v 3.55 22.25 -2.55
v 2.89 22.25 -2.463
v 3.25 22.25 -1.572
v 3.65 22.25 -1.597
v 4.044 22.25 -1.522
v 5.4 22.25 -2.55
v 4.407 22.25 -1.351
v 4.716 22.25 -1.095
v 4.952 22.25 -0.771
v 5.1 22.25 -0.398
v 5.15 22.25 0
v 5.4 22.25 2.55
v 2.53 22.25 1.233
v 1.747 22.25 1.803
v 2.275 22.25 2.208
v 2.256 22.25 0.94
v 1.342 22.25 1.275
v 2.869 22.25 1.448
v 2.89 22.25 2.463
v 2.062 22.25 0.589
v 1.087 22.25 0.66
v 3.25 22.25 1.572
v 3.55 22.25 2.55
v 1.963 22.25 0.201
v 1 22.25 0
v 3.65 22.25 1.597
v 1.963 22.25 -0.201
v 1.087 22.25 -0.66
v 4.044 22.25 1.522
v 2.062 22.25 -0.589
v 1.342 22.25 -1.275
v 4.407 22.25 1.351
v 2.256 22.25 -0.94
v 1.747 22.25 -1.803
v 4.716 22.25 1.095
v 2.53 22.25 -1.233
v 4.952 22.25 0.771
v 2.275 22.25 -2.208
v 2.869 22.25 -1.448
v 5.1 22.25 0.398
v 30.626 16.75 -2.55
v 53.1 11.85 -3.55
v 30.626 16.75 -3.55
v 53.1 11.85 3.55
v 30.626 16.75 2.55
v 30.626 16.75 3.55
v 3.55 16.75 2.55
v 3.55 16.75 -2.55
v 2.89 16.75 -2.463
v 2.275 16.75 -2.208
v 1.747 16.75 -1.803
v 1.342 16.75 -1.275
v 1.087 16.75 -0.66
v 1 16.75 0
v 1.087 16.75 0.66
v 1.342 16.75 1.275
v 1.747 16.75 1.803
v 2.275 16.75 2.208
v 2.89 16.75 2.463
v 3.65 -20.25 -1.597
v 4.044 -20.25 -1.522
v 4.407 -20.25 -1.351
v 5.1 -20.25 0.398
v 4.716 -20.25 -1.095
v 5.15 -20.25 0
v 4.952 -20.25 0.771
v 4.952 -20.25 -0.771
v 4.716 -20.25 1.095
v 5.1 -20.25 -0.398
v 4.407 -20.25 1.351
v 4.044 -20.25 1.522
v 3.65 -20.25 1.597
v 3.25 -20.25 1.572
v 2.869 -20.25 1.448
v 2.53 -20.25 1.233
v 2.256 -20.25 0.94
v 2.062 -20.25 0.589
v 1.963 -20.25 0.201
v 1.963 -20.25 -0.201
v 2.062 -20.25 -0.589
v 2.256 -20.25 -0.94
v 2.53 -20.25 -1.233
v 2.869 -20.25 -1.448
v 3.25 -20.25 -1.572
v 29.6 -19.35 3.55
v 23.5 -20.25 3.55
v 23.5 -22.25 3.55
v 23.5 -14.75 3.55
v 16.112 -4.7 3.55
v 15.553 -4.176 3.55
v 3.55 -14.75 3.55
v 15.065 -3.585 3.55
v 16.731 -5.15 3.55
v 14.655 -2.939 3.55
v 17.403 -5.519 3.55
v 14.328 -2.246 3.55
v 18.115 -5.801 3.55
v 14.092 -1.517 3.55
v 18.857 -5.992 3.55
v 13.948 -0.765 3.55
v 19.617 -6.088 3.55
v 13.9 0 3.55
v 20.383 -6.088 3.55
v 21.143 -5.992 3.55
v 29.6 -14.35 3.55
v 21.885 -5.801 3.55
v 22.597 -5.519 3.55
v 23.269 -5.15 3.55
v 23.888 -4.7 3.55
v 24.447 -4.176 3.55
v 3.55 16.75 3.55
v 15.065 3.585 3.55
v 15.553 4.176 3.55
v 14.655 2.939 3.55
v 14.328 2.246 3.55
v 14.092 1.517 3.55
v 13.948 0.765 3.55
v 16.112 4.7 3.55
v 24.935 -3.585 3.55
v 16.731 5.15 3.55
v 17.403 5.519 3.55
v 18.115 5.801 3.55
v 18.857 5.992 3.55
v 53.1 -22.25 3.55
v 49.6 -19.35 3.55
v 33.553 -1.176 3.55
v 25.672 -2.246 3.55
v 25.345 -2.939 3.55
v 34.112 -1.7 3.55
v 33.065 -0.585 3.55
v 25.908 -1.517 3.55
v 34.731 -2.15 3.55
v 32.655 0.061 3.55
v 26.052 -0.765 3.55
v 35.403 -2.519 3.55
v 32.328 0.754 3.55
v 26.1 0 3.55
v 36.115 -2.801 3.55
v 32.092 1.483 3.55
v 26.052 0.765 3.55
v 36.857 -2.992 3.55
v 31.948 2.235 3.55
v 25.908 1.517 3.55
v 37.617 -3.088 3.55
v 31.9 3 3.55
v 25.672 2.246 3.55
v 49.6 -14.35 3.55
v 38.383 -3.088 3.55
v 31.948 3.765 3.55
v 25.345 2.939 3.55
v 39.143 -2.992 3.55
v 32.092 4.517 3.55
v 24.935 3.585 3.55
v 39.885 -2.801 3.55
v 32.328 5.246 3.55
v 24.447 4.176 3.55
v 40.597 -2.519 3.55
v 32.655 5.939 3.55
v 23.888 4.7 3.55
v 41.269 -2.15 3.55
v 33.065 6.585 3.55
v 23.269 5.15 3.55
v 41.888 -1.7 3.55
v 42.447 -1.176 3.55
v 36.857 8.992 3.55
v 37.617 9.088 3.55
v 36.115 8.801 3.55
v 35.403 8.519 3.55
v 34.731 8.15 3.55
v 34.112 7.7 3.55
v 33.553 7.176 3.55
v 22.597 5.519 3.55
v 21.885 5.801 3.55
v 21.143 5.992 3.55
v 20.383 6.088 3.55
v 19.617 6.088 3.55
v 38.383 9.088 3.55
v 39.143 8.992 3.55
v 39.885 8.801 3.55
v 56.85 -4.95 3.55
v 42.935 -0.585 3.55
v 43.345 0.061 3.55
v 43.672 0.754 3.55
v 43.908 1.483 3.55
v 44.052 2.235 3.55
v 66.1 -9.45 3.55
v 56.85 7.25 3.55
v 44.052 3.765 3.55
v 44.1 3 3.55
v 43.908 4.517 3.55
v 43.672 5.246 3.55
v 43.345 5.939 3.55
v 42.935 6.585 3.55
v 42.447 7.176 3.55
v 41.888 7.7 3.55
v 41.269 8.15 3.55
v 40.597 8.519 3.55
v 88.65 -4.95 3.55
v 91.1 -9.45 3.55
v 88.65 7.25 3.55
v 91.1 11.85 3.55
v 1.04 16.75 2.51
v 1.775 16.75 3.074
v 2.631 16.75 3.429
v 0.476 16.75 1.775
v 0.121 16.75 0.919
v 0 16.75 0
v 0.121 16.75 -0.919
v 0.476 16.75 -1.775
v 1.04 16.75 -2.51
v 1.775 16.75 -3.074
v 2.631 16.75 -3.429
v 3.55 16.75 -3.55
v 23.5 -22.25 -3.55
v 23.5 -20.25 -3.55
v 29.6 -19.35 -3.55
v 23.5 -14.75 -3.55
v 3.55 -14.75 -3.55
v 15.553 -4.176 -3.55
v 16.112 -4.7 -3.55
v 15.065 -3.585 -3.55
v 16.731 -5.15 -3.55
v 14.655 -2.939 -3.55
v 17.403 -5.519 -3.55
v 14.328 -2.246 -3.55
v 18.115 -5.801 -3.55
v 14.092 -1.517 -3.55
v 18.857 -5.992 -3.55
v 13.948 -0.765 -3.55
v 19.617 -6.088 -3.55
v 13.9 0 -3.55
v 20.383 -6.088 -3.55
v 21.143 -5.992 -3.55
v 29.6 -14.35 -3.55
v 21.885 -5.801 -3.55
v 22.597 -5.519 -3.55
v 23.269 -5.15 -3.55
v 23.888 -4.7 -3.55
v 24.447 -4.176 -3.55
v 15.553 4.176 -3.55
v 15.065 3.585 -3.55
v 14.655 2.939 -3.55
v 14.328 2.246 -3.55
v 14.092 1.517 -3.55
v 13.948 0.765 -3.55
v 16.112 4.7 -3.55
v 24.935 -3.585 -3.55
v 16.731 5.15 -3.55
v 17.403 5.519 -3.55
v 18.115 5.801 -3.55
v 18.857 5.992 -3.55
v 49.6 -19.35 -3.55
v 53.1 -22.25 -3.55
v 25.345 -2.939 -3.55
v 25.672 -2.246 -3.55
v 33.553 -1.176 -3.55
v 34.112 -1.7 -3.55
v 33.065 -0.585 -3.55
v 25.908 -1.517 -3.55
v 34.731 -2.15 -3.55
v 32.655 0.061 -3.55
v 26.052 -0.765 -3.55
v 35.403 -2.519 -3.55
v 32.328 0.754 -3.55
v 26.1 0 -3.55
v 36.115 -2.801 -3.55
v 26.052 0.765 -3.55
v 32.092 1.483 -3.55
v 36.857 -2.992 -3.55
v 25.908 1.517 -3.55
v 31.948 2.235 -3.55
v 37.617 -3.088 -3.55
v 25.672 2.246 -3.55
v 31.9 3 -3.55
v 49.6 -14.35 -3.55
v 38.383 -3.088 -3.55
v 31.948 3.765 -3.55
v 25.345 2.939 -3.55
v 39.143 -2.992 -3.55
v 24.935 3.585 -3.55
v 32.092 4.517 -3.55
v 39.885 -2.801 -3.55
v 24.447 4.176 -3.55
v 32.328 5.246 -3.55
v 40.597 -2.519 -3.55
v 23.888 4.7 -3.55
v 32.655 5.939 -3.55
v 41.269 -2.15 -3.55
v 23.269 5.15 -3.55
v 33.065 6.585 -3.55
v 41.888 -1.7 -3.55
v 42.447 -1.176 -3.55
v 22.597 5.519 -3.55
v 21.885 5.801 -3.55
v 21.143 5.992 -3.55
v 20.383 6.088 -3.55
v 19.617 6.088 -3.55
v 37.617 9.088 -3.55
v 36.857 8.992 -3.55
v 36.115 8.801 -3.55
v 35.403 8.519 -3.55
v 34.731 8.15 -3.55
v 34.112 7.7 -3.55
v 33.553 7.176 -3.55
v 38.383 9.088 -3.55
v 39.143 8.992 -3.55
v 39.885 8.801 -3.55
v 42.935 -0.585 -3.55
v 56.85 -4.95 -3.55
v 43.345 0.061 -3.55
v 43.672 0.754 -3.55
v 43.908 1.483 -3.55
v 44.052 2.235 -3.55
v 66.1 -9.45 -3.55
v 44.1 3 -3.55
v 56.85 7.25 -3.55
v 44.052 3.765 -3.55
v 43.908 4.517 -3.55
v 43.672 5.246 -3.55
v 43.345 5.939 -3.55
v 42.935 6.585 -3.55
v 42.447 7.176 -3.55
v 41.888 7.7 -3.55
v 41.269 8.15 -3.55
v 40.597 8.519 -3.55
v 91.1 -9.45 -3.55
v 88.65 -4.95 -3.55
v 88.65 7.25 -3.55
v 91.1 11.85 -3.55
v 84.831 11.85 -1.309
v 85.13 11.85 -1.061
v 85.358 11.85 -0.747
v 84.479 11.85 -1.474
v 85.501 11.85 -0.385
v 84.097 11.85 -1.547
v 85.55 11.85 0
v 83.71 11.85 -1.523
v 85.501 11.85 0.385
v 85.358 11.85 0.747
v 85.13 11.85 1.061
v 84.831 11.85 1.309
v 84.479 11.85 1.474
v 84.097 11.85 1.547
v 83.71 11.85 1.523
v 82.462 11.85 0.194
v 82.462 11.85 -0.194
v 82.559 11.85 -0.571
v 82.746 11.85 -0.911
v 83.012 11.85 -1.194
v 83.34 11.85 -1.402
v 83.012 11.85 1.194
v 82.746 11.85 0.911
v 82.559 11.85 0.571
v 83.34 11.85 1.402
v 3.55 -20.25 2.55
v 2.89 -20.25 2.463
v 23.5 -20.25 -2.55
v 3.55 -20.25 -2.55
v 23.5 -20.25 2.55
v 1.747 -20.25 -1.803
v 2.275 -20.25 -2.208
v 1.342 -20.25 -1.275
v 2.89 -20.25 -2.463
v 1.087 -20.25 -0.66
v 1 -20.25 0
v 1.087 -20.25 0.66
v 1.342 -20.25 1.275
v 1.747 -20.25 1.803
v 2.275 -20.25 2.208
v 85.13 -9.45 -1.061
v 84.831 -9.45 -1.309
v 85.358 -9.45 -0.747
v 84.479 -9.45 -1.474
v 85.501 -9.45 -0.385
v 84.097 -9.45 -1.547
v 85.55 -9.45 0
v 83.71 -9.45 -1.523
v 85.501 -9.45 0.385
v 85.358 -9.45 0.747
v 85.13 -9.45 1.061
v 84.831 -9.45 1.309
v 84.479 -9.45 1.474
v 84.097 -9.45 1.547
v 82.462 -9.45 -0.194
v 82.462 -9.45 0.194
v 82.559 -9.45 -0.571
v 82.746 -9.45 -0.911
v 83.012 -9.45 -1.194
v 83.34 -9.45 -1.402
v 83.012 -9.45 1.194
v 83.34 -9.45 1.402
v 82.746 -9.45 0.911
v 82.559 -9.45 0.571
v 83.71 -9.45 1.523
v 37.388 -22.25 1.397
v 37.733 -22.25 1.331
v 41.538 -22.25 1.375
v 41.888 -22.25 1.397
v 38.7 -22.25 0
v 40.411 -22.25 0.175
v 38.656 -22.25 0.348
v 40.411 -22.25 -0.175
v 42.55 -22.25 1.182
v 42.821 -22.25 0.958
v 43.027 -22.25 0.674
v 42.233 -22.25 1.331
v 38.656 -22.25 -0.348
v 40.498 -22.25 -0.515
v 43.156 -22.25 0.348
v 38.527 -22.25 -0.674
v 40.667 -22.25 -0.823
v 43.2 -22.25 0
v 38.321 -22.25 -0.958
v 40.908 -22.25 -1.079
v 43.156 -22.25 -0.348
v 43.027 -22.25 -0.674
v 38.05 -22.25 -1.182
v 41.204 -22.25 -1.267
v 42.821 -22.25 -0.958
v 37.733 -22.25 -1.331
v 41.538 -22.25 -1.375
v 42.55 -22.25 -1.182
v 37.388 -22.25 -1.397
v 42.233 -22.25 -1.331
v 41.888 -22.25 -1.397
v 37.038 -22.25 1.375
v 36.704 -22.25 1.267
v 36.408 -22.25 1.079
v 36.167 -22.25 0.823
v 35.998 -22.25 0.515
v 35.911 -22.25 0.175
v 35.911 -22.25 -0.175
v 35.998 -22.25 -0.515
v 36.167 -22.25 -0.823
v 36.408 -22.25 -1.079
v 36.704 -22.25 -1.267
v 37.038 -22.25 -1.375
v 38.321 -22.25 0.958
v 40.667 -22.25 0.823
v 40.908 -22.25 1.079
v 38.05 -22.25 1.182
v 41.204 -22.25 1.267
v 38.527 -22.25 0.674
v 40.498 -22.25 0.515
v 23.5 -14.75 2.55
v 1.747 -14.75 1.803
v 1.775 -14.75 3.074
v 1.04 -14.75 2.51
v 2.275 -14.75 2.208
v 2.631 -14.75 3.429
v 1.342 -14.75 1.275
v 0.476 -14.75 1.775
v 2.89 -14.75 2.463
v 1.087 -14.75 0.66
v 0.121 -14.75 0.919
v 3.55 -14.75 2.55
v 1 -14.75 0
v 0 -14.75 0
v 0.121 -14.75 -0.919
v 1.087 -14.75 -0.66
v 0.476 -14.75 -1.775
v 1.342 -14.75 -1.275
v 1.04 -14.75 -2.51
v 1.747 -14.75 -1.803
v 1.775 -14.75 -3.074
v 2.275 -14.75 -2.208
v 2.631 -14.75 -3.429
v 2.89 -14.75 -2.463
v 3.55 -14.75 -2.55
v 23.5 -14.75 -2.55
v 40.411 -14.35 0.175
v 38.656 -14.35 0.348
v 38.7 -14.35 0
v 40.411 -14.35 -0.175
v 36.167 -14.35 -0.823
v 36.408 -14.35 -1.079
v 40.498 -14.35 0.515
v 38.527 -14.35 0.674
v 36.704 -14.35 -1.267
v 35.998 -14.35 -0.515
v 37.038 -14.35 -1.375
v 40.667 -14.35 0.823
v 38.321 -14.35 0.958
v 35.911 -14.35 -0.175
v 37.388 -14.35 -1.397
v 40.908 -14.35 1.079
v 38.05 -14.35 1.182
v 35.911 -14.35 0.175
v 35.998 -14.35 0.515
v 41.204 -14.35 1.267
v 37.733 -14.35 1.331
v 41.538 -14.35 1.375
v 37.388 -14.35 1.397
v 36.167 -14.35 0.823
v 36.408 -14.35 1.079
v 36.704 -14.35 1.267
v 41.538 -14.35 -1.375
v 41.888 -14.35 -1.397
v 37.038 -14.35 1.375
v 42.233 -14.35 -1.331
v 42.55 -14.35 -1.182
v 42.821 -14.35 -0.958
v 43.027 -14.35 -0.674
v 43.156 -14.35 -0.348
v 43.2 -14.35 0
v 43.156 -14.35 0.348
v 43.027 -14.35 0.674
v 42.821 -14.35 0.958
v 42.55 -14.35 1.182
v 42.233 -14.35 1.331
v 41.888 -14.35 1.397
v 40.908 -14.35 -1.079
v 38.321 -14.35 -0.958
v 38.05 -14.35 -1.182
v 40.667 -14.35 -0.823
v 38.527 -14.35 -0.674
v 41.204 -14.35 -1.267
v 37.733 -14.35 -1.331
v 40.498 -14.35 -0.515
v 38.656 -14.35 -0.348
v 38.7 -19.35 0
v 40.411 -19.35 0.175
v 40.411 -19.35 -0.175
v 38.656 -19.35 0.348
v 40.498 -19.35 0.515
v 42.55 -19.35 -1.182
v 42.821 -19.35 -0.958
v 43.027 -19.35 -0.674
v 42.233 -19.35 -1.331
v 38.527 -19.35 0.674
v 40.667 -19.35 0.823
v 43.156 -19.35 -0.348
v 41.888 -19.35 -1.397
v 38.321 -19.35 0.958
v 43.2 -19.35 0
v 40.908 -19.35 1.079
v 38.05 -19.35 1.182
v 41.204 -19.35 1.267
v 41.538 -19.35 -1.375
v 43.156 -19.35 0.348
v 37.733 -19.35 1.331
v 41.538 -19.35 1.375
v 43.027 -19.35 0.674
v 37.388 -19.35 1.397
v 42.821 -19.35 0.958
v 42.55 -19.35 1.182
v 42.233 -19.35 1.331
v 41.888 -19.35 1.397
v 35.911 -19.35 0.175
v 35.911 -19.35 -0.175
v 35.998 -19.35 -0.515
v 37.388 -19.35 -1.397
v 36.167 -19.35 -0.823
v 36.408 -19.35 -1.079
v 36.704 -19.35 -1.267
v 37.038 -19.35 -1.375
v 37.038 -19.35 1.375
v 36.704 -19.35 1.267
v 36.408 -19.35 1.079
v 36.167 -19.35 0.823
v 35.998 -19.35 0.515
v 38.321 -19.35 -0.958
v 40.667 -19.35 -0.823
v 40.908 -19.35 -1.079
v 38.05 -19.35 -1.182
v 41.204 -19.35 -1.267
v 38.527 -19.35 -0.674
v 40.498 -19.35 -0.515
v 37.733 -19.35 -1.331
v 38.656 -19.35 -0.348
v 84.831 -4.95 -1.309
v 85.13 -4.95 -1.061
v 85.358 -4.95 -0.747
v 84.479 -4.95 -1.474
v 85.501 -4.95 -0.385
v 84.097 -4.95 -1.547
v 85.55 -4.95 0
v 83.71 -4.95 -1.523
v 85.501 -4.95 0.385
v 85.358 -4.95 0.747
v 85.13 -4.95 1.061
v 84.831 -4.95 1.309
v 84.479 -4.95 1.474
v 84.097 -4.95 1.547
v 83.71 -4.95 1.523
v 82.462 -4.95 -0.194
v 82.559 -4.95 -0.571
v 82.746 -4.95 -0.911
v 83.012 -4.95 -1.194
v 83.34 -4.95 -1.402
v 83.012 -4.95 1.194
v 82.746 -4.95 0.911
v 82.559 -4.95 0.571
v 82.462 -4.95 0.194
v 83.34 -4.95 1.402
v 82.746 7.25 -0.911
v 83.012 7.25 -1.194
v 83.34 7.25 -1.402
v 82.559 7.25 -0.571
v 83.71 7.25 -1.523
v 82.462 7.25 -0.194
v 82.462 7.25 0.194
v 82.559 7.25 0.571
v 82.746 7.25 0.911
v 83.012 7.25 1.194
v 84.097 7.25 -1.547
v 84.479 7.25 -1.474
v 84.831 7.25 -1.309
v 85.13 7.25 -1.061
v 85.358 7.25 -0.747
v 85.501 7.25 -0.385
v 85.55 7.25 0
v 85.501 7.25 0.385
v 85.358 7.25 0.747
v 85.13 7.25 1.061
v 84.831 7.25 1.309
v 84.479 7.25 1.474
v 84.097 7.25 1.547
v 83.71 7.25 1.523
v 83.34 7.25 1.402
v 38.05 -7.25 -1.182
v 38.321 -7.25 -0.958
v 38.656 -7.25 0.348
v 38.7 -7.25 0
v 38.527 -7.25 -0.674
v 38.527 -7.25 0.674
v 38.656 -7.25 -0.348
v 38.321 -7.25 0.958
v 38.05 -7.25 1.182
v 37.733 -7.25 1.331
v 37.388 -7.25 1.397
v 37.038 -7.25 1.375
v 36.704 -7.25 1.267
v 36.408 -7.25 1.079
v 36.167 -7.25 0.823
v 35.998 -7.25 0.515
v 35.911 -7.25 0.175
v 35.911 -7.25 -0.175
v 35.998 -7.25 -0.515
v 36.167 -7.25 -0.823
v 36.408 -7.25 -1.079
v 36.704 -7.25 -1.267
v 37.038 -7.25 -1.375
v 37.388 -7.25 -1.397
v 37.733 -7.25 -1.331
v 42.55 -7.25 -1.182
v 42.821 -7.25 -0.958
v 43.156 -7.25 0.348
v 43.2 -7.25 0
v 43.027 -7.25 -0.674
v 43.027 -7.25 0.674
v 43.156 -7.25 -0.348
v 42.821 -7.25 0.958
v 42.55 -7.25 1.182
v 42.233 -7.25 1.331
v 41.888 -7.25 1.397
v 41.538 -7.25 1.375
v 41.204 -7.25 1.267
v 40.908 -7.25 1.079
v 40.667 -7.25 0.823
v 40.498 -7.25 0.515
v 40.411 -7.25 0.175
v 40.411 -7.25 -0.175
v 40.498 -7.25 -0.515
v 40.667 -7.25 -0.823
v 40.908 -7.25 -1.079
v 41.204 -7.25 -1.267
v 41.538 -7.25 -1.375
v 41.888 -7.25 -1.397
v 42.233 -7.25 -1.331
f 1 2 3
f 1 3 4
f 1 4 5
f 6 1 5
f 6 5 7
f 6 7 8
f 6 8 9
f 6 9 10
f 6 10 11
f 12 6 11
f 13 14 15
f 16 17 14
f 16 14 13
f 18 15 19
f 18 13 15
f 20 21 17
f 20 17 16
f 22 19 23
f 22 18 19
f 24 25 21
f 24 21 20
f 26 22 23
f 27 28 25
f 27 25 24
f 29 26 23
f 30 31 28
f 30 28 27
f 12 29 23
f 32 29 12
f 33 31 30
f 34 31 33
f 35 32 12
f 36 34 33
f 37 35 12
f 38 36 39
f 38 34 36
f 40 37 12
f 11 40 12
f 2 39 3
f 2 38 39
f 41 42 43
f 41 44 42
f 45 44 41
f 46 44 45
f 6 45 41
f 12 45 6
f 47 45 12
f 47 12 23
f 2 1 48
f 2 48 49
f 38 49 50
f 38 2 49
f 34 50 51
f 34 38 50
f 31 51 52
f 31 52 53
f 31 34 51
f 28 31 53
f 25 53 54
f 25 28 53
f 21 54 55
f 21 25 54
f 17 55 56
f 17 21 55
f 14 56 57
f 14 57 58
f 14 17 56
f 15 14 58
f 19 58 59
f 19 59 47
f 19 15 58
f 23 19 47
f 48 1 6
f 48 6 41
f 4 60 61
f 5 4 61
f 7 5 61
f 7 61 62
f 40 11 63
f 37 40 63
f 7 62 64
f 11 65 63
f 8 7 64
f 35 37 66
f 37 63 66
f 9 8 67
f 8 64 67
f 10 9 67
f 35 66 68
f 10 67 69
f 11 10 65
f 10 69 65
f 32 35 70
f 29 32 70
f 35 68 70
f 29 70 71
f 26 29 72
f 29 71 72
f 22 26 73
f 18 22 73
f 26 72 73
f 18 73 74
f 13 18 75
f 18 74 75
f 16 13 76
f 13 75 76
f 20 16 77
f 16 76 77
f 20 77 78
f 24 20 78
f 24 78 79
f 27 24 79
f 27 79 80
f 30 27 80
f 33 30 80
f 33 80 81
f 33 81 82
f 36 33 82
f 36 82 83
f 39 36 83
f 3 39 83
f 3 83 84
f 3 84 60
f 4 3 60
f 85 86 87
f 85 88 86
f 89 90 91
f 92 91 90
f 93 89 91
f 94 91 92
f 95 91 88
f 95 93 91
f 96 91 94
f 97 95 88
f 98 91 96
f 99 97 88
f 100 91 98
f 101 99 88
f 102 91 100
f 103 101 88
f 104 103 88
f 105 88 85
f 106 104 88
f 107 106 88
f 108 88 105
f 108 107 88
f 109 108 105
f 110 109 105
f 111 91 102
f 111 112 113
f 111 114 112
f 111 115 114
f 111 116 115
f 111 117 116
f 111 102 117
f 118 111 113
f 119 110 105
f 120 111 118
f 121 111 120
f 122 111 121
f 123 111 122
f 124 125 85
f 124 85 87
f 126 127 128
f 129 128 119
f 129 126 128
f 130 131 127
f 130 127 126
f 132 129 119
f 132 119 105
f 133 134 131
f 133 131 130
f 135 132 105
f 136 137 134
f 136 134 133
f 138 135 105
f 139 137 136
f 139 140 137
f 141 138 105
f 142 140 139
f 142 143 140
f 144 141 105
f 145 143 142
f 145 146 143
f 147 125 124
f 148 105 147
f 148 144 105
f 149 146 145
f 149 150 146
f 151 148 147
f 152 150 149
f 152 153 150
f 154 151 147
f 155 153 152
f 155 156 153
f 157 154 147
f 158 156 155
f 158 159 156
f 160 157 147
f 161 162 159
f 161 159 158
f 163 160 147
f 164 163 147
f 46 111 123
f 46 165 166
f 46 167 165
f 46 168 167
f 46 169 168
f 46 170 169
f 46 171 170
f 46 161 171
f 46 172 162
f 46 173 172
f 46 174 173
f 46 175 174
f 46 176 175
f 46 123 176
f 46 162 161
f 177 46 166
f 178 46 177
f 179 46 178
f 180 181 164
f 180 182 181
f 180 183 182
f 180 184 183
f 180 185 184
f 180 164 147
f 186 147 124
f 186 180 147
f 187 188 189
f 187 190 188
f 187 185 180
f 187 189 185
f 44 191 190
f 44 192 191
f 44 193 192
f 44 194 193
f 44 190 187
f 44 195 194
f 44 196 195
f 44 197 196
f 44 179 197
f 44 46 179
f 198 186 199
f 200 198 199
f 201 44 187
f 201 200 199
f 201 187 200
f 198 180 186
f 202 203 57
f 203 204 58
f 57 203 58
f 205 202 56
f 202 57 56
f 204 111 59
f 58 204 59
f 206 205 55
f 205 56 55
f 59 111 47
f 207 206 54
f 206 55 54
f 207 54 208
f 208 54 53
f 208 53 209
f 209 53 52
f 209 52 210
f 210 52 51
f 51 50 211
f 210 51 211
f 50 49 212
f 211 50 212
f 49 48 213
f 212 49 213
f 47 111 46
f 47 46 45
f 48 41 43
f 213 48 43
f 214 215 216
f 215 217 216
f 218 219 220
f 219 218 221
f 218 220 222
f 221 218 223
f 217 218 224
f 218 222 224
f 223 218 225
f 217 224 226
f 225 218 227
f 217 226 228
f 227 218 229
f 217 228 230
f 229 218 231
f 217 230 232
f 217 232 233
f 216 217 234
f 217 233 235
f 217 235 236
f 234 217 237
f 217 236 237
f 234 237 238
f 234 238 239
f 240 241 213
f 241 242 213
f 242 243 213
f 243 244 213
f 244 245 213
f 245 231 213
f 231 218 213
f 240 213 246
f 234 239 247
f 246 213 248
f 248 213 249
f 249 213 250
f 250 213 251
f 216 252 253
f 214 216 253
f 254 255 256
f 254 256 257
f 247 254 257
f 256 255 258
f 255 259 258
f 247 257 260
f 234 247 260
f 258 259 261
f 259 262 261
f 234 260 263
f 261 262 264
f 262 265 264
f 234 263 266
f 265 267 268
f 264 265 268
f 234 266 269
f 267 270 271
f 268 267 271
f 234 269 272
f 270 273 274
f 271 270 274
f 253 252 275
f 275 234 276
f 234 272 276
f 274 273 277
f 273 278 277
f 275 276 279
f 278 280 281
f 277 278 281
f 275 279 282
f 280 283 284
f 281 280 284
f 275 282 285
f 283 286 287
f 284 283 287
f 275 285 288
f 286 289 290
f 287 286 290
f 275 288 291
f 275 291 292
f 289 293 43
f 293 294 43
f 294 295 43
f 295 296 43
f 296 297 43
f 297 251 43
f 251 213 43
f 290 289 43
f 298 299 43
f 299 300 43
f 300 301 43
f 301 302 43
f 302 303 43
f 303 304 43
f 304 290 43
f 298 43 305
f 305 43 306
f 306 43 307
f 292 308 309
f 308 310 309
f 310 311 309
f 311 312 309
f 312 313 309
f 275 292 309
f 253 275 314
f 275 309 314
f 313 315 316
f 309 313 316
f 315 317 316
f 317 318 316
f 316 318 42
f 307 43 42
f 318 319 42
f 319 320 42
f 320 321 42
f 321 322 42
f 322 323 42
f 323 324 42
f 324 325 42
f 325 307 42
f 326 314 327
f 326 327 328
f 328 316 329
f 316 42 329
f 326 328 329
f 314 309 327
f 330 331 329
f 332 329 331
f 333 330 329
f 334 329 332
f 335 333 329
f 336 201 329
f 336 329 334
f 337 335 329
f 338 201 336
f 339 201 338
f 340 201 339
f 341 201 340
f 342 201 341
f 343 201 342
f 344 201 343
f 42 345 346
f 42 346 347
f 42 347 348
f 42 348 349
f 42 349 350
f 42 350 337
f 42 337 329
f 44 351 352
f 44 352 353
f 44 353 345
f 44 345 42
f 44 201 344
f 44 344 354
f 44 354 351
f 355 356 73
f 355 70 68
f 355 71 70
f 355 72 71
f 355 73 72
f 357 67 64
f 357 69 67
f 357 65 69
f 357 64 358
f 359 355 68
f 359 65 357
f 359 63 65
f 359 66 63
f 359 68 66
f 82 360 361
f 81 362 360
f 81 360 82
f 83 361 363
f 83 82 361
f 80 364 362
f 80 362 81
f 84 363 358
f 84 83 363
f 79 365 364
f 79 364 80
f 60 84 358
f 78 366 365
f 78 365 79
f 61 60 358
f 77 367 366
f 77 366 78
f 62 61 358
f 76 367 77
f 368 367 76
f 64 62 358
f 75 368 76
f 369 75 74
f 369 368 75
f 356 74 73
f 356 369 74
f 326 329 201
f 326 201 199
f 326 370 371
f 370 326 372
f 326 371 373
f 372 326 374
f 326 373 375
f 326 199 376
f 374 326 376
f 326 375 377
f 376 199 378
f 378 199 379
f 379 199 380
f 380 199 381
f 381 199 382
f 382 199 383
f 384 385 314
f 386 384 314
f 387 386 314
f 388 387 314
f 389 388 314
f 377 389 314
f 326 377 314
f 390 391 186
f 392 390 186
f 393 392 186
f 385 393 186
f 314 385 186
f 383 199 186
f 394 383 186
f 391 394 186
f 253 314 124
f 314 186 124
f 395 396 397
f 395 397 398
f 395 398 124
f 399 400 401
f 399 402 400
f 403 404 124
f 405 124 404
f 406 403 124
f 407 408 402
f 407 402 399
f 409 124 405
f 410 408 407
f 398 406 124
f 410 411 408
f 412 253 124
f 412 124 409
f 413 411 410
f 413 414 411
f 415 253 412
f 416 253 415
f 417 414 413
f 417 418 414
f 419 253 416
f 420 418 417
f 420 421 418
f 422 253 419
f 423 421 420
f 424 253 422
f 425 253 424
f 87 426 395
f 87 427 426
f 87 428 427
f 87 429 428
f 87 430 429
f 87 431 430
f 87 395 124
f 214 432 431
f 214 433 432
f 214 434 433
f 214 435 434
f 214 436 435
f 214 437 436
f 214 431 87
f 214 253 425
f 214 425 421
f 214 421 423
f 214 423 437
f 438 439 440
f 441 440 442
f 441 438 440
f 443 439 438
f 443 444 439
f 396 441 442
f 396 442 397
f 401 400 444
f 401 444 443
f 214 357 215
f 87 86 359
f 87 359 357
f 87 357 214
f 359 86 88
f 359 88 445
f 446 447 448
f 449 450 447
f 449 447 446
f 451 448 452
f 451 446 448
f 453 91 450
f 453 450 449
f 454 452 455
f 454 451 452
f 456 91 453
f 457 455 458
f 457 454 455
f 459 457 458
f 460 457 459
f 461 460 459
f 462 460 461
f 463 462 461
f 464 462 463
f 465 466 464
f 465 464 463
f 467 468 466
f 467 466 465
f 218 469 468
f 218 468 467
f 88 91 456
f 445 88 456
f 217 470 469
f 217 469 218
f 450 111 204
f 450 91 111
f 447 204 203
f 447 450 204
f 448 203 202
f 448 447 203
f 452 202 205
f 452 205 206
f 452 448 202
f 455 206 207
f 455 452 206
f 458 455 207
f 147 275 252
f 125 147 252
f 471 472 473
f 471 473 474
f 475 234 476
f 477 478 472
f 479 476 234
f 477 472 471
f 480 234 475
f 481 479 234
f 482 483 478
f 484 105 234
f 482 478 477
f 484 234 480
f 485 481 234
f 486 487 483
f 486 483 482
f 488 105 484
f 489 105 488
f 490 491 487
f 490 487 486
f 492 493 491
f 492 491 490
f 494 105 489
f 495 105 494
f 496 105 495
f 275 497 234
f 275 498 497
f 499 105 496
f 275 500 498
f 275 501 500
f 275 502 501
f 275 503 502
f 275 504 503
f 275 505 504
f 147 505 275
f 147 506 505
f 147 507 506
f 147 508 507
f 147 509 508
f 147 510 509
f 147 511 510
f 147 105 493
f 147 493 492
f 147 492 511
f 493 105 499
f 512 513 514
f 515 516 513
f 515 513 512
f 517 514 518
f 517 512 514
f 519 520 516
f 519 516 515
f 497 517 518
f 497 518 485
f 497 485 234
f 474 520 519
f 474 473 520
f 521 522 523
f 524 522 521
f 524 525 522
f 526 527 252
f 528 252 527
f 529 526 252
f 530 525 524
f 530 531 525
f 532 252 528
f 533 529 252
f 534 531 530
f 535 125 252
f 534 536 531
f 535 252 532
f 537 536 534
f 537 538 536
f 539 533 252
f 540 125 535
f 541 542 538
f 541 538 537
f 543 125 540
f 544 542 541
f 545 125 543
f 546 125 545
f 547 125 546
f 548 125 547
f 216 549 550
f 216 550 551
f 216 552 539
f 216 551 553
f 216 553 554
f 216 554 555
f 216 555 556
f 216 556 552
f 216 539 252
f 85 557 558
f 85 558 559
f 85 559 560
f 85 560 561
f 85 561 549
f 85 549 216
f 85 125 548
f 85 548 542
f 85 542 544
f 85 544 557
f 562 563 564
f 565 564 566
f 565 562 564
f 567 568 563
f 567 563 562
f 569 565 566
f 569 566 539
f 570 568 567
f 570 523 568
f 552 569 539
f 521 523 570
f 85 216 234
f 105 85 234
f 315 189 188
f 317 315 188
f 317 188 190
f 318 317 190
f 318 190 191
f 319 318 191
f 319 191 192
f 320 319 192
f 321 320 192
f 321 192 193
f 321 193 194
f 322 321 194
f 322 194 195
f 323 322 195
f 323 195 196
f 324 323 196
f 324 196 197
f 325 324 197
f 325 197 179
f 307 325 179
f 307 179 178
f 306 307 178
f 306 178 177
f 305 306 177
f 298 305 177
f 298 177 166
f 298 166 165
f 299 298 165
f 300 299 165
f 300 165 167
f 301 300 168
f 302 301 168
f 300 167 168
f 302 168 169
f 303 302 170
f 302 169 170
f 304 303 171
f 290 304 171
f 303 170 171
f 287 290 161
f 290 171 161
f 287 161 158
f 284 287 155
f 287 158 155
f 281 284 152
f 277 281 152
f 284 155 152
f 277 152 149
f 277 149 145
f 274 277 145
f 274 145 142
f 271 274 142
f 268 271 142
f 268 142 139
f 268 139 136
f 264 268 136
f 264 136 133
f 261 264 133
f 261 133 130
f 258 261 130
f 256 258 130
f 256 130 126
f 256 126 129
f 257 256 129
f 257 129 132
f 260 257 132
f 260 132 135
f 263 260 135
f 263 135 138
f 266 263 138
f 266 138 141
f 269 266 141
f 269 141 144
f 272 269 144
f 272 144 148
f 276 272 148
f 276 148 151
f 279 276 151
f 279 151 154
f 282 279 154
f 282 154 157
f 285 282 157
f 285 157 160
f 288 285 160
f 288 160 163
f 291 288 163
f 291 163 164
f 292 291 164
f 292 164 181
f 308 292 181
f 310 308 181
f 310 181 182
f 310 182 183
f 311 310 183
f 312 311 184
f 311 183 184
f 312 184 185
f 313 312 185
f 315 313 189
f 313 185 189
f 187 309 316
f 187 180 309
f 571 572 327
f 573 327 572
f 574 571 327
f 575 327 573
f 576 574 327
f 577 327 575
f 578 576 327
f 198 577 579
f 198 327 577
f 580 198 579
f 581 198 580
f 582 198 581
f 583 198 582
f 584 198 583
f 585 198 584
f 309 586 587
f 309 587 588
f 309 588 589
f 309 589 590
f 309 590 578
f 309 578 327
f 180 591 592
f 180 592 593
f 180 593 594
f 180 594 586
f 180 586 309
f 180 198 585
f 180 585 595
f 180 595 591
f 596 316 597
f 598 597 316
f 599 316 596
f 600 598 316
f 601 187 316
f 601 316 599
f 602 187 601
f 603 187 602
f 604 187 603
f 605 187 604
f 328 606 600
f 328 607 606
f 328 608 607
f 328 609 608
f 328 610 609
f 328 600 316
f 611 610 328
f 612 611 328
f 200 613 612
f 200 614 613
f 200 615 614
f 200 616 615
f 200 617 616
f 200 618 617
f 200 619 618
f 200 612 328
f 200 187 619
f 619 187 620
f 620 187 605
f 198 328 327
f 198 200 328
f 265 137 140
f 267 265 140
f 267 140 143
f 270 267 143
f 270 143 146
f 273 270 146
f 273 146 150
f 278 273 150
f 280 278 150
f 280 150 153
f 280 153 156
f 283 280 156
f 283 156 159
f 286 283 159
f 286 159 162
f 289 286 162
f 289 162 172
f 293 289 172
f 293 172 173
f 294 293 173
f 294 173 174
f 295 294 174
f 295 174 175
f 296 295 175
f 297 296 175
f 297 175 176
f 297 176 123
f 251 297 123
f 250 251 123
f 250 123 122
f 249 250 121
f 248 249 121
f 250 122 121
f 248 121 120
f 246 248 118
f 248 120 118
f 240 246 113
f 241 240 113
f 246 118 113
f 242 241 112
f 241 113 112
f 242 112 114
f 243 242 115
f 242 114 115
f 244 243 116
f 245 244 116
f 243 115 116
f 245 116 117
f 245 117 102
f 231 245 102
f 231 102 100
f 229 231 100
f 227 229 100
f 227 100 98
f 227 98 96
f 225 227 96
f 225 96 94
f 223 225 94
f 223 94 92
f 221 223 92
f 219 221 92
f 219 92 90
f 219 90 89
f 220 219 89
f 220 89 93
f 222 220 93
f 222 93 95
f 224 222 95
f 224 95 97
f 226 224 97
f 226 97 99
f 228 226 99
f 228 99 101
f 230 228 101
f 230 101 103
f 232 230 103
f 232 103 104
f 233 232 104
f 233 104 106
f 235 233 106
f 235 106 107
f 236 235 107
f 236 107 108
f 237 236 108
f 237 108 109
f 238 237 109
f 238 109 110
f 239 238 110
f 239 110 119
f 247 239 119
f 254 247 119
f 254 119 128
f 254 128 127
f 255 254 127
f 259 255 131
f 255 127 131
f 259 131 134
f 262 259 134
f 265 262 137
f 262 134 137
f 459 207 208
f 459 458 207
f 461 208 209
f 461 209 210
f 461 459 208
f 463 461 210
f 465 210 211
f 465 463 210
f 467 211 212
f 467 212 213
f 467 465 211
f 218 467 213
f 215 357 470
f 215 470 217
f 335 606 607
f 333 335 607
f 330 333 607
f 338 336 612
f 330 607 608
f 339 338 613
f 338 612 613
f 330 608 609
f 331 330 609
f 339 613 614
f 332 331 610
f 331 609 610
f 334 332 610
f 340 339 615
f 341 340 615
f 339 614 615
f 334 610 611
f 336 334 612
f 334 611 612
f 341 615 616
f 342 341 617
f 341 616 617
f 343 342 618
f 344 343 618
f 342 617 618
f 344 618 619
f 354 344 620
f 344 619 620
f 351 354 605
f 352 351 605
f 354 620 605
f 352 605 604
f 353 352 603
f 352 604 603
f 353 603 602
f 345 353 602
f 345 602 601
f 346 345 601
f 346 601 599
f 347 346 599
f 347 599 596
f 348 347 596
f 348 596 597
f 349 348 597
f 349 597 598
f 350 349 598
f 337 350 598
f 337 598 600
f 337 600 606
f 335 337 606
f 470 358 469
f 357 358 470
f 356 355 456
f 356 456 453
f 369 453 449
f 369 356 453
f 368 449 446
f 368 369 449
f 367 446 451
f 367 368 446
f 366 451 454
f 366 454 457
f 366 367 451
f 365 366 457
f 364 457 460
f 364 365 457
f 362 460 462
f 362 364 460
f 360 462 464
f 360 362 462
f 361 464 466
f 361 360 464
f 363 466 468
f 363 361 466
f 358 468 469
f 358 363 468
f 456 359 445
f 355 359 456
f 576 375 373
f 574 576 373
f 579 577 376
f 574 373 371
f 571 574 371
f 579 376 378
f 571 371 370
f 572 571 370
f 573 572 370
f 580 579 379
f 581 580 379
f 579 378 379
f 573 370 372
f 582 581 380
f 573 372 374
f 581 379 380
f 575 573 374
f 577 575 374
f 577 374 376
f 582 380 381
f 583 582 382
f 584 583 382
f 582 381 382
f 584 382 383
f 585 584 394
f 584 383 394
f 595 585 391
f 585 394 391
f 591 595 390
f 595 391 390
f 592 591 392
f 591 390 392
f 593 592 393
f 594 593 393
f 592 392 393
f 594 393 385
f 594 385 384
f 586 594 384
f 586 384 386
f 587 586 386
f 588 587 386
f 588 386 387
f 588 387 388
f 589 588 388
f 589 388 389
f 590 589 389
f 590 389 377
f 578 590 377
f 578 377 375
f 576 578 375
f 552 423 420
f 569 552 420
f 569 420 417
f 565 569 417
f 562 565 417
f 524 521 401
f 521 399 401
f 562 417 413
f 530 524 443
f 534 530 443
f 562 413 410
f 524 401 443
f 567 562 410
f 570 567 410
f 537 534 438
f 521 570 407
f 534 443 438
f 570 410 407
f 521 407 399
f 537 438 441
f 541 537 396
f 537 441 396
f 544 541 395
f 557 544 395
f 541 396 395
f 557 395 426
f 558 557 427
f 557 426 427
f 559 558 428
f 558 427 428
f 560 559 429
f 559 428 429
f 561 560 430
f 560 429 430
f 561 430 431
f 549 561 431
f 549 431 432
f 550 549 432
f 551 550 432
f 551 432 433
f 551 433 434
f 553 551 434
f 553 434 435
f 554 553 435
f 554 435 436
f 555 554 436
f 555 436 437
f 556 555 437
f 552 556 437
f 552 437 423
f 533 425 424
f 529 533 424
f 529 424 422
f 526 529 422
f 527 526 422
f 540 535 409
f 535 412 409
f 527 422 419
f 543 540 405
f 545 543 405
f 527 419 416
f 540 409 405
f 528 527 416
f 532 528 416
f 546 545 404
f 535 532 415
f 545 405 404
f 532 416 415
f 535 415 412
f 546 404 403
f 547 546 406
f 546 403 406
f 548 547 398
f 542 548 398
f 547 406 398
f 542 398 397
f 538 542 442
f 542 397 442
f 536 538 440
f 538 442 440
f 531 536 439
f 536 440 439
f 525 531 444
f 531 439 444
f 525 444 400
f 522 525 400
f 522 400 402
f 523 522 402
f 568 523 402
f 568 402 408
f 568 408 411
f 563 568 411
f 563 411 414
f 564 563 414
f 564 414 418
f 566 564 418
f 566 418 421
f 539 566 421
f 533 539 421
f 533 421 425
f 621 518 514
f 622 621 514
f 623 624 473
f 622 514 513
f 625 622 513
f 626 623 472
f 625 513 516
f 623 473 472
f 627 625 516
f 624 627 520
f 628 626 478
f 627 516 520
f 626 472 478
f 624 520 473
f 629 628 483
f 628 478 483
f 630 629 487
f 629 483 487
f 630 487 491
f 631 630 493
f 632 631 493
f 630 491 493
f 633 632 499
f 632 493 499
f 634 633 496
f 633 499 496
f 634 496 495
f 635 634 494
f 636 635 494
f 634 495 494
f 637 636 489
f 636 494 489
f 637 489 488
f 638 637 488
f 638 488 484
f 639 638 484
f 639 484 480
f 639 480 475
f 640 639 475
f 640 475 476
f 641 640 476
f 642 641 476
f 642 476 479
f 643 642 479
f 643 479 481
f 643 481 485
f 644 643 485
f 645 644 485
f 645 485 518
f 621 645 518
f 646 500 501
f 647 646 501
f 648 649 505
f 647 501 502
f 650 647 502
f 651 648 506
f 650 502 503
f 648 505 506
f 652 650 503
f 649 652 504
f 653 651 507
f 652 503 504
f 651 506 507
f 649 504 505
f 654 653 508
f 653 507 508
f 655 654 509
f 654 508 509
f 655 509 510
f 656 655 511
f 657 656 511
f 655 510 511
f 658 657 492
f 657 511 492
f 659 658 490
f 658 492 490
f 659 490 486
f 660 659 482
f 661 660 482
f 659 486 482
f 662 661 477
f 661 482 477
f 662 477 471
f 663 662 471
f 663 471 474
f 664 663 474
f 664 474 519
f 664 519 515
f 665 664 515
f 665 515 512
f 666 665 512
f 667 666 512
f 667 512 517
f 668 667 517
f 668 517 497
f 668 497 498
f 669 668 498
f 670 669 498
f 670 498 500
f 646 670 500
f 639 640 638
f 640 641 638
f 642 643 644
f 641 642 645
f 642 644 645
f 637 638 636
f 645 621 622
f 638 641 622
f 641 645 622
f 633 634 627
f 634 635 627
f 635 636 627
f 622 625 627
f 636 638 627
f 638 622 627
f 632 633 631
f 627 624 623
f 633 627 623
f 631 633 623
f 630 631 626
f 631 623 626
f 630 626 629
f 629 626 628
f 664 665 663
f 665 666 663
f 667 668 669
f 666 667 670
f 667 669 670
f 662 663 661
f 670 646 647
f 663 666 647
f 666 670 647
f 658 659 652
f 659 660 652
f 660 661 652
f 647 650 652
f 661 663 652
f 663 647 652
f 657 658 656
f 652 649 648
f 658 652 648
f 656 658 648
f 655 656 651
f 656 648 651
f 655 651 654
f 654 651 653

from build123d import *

# Parameters (mm, degrees)
SKETCH_W        = 91.1
SKETCH_H        = 44.5
PAD_DEPTH       = 3.55
SKETCH001_R     = 6.1
SKETCH001_W     = 31.8
SKETCH001_H     = 12.2
SKETCH001_W_2   = 23.5
SKETCH001_H_2   = 2
SKETCH001_W_3   = 20
SKETCH001_H_3   = 5
POCKET_DEPTH    = 7.101
SKETCH002_R     = 1.6
SKETCH002_R_2   = 1.55
POCKET001_DEPTH = 42.501
POCKET002_DEPTH = 5.5
POCKET003_DEPTH = 5.5
SKETCH006_R     = 1.4
POCKET004_DEPTH = 15


with BuildPart() as part:
    # Sketch → Pad (new body, symmetric)
    with BuildSketch(Plane.XY):
        with Locations((45.55, 0)):
            Rectangle(SKETCH_W, SKETCH_H)
    extrude(amount=PAD_DEPTH, both=True)

    # Sketch001 → Pocket (cut, through all)
    with BuildSketch(Plane.XY.offset(3.55)):
        with Locations((38, 3)):
            Circle(SKETCH001_R)
        with Locations((20, 0)):
            Circle(SKETCH001_R)
        Polygon((91.1, 22.25), (91.1, 11.85), (53.1, 11.85), (5.4, 22.25), align=None)
        Polygon((91.1, -22.25), (91.1, -9.45), (66.1, -9.45), (53.1, -22.25), align=None)
        with Locations((72.75, 1.15)):
            Rectangle(SKETCH001_W, SKETCH001_H)
        with Locations((11.75, -21.25)):
            Rectangle(SKETCH001_W_2, SKETCH001_H_2)
        with Locations((39.6, -16.85)):
            Rectangle(SKETCH001_W_3, SKETCH001_H_3)
    extrude(amount=-POCKET_DEPTH, mode=Mode.SUBTRACT)

    # Sketch002 → Pocket001 (cut, through all)
    with BuildSketch(Plane.XZ.offset(20.25)):
        with Locations((3.55, 0)):
            Circle(SKETCH002_R)
        with Locations((84, 0)):
            Circle(SKETCH002_R_2)
        with BuildLine():
            Line((-1.450012, 3.55), (3.549988, 3.55))
            ThreePointArc((3.549988, 3.55), (0, 0), (3.549988, -3.55))
            Line((3.549988, -3.55), (-1.450012, -3.55))
            Line((-1.450012, -3.55), (-1.450012, 3.55))
        make_face()
    extrude(amount=-POCKET001_DEPTH, mode=Mode.SUBTRACT)

    # Sketch004 → Pocket002 (cut)
    with BuildSketch(Plane.XZ.offset(20.25)):
        with BuildLine():
            Line((0, 3.55), (23.5, 3.55))
            Line((23.5, 3.55), (23.5, 2.55))
            Line((23.5, 2.55), (3.55, 2.55))
            ThreePointArc((3.55, 2.55), (1, 0), (3.55, -2.55))
            Line((3.55, -2.55), (23.5, -2.55))
            Line((23.5, -2.55), (23.5, -3.55))
            Line((23.5, -3.55), (0, -3.55))
            Line((0, -3.55), (0, 3.55))
        make_face()
    extrude(amount=-POCKET002_DEPTH, mode=Mode.SUBTRACT)

    # Sketch005 → Pocket003 (cut)
    with BuildSketch(Plane(origin=(0, 22.25, 0), x_dir=(-1, 0, 0), z_dir=(0, 1, 0))):
        with BuildLine():
            Line((-53.1, 3.55), (0, 3.55))
            Line((0, 3.55), (0, -3.55))
            Line((0, -3.55), (-53.1, -3.55))
            Line((-53.1, -2.55), (-53.1, -3.55))
            Line((-3.55, -2.55), (-53.1, -2.55))
            ThreePointArc((-3.55, -2.55), (-1, 0), (-3.55, 2.55))
            Line((-53.1, 2.55), (-3.55, 2.55))
            Line((-53.1, 3.55), (-53.1, 2.55))
        make_face()
    extrude(amount=-POCKET003_DEPTH, mode=Mode.SUBTRACT)

    # Sketch006 → Pocket004 (cut)
    with BuildSketch(Plane.XZ.offset(22.25)):
        with Locations((37.3, 0)):
            Circle(SKETCH006_R)
        with Locations((41.8, 0)):
            Circle(SKETCH006_R)
    extrude(amount=-POCKET004_DEPTH, mode=Mode.SUBTRACT)


solid = part.part
